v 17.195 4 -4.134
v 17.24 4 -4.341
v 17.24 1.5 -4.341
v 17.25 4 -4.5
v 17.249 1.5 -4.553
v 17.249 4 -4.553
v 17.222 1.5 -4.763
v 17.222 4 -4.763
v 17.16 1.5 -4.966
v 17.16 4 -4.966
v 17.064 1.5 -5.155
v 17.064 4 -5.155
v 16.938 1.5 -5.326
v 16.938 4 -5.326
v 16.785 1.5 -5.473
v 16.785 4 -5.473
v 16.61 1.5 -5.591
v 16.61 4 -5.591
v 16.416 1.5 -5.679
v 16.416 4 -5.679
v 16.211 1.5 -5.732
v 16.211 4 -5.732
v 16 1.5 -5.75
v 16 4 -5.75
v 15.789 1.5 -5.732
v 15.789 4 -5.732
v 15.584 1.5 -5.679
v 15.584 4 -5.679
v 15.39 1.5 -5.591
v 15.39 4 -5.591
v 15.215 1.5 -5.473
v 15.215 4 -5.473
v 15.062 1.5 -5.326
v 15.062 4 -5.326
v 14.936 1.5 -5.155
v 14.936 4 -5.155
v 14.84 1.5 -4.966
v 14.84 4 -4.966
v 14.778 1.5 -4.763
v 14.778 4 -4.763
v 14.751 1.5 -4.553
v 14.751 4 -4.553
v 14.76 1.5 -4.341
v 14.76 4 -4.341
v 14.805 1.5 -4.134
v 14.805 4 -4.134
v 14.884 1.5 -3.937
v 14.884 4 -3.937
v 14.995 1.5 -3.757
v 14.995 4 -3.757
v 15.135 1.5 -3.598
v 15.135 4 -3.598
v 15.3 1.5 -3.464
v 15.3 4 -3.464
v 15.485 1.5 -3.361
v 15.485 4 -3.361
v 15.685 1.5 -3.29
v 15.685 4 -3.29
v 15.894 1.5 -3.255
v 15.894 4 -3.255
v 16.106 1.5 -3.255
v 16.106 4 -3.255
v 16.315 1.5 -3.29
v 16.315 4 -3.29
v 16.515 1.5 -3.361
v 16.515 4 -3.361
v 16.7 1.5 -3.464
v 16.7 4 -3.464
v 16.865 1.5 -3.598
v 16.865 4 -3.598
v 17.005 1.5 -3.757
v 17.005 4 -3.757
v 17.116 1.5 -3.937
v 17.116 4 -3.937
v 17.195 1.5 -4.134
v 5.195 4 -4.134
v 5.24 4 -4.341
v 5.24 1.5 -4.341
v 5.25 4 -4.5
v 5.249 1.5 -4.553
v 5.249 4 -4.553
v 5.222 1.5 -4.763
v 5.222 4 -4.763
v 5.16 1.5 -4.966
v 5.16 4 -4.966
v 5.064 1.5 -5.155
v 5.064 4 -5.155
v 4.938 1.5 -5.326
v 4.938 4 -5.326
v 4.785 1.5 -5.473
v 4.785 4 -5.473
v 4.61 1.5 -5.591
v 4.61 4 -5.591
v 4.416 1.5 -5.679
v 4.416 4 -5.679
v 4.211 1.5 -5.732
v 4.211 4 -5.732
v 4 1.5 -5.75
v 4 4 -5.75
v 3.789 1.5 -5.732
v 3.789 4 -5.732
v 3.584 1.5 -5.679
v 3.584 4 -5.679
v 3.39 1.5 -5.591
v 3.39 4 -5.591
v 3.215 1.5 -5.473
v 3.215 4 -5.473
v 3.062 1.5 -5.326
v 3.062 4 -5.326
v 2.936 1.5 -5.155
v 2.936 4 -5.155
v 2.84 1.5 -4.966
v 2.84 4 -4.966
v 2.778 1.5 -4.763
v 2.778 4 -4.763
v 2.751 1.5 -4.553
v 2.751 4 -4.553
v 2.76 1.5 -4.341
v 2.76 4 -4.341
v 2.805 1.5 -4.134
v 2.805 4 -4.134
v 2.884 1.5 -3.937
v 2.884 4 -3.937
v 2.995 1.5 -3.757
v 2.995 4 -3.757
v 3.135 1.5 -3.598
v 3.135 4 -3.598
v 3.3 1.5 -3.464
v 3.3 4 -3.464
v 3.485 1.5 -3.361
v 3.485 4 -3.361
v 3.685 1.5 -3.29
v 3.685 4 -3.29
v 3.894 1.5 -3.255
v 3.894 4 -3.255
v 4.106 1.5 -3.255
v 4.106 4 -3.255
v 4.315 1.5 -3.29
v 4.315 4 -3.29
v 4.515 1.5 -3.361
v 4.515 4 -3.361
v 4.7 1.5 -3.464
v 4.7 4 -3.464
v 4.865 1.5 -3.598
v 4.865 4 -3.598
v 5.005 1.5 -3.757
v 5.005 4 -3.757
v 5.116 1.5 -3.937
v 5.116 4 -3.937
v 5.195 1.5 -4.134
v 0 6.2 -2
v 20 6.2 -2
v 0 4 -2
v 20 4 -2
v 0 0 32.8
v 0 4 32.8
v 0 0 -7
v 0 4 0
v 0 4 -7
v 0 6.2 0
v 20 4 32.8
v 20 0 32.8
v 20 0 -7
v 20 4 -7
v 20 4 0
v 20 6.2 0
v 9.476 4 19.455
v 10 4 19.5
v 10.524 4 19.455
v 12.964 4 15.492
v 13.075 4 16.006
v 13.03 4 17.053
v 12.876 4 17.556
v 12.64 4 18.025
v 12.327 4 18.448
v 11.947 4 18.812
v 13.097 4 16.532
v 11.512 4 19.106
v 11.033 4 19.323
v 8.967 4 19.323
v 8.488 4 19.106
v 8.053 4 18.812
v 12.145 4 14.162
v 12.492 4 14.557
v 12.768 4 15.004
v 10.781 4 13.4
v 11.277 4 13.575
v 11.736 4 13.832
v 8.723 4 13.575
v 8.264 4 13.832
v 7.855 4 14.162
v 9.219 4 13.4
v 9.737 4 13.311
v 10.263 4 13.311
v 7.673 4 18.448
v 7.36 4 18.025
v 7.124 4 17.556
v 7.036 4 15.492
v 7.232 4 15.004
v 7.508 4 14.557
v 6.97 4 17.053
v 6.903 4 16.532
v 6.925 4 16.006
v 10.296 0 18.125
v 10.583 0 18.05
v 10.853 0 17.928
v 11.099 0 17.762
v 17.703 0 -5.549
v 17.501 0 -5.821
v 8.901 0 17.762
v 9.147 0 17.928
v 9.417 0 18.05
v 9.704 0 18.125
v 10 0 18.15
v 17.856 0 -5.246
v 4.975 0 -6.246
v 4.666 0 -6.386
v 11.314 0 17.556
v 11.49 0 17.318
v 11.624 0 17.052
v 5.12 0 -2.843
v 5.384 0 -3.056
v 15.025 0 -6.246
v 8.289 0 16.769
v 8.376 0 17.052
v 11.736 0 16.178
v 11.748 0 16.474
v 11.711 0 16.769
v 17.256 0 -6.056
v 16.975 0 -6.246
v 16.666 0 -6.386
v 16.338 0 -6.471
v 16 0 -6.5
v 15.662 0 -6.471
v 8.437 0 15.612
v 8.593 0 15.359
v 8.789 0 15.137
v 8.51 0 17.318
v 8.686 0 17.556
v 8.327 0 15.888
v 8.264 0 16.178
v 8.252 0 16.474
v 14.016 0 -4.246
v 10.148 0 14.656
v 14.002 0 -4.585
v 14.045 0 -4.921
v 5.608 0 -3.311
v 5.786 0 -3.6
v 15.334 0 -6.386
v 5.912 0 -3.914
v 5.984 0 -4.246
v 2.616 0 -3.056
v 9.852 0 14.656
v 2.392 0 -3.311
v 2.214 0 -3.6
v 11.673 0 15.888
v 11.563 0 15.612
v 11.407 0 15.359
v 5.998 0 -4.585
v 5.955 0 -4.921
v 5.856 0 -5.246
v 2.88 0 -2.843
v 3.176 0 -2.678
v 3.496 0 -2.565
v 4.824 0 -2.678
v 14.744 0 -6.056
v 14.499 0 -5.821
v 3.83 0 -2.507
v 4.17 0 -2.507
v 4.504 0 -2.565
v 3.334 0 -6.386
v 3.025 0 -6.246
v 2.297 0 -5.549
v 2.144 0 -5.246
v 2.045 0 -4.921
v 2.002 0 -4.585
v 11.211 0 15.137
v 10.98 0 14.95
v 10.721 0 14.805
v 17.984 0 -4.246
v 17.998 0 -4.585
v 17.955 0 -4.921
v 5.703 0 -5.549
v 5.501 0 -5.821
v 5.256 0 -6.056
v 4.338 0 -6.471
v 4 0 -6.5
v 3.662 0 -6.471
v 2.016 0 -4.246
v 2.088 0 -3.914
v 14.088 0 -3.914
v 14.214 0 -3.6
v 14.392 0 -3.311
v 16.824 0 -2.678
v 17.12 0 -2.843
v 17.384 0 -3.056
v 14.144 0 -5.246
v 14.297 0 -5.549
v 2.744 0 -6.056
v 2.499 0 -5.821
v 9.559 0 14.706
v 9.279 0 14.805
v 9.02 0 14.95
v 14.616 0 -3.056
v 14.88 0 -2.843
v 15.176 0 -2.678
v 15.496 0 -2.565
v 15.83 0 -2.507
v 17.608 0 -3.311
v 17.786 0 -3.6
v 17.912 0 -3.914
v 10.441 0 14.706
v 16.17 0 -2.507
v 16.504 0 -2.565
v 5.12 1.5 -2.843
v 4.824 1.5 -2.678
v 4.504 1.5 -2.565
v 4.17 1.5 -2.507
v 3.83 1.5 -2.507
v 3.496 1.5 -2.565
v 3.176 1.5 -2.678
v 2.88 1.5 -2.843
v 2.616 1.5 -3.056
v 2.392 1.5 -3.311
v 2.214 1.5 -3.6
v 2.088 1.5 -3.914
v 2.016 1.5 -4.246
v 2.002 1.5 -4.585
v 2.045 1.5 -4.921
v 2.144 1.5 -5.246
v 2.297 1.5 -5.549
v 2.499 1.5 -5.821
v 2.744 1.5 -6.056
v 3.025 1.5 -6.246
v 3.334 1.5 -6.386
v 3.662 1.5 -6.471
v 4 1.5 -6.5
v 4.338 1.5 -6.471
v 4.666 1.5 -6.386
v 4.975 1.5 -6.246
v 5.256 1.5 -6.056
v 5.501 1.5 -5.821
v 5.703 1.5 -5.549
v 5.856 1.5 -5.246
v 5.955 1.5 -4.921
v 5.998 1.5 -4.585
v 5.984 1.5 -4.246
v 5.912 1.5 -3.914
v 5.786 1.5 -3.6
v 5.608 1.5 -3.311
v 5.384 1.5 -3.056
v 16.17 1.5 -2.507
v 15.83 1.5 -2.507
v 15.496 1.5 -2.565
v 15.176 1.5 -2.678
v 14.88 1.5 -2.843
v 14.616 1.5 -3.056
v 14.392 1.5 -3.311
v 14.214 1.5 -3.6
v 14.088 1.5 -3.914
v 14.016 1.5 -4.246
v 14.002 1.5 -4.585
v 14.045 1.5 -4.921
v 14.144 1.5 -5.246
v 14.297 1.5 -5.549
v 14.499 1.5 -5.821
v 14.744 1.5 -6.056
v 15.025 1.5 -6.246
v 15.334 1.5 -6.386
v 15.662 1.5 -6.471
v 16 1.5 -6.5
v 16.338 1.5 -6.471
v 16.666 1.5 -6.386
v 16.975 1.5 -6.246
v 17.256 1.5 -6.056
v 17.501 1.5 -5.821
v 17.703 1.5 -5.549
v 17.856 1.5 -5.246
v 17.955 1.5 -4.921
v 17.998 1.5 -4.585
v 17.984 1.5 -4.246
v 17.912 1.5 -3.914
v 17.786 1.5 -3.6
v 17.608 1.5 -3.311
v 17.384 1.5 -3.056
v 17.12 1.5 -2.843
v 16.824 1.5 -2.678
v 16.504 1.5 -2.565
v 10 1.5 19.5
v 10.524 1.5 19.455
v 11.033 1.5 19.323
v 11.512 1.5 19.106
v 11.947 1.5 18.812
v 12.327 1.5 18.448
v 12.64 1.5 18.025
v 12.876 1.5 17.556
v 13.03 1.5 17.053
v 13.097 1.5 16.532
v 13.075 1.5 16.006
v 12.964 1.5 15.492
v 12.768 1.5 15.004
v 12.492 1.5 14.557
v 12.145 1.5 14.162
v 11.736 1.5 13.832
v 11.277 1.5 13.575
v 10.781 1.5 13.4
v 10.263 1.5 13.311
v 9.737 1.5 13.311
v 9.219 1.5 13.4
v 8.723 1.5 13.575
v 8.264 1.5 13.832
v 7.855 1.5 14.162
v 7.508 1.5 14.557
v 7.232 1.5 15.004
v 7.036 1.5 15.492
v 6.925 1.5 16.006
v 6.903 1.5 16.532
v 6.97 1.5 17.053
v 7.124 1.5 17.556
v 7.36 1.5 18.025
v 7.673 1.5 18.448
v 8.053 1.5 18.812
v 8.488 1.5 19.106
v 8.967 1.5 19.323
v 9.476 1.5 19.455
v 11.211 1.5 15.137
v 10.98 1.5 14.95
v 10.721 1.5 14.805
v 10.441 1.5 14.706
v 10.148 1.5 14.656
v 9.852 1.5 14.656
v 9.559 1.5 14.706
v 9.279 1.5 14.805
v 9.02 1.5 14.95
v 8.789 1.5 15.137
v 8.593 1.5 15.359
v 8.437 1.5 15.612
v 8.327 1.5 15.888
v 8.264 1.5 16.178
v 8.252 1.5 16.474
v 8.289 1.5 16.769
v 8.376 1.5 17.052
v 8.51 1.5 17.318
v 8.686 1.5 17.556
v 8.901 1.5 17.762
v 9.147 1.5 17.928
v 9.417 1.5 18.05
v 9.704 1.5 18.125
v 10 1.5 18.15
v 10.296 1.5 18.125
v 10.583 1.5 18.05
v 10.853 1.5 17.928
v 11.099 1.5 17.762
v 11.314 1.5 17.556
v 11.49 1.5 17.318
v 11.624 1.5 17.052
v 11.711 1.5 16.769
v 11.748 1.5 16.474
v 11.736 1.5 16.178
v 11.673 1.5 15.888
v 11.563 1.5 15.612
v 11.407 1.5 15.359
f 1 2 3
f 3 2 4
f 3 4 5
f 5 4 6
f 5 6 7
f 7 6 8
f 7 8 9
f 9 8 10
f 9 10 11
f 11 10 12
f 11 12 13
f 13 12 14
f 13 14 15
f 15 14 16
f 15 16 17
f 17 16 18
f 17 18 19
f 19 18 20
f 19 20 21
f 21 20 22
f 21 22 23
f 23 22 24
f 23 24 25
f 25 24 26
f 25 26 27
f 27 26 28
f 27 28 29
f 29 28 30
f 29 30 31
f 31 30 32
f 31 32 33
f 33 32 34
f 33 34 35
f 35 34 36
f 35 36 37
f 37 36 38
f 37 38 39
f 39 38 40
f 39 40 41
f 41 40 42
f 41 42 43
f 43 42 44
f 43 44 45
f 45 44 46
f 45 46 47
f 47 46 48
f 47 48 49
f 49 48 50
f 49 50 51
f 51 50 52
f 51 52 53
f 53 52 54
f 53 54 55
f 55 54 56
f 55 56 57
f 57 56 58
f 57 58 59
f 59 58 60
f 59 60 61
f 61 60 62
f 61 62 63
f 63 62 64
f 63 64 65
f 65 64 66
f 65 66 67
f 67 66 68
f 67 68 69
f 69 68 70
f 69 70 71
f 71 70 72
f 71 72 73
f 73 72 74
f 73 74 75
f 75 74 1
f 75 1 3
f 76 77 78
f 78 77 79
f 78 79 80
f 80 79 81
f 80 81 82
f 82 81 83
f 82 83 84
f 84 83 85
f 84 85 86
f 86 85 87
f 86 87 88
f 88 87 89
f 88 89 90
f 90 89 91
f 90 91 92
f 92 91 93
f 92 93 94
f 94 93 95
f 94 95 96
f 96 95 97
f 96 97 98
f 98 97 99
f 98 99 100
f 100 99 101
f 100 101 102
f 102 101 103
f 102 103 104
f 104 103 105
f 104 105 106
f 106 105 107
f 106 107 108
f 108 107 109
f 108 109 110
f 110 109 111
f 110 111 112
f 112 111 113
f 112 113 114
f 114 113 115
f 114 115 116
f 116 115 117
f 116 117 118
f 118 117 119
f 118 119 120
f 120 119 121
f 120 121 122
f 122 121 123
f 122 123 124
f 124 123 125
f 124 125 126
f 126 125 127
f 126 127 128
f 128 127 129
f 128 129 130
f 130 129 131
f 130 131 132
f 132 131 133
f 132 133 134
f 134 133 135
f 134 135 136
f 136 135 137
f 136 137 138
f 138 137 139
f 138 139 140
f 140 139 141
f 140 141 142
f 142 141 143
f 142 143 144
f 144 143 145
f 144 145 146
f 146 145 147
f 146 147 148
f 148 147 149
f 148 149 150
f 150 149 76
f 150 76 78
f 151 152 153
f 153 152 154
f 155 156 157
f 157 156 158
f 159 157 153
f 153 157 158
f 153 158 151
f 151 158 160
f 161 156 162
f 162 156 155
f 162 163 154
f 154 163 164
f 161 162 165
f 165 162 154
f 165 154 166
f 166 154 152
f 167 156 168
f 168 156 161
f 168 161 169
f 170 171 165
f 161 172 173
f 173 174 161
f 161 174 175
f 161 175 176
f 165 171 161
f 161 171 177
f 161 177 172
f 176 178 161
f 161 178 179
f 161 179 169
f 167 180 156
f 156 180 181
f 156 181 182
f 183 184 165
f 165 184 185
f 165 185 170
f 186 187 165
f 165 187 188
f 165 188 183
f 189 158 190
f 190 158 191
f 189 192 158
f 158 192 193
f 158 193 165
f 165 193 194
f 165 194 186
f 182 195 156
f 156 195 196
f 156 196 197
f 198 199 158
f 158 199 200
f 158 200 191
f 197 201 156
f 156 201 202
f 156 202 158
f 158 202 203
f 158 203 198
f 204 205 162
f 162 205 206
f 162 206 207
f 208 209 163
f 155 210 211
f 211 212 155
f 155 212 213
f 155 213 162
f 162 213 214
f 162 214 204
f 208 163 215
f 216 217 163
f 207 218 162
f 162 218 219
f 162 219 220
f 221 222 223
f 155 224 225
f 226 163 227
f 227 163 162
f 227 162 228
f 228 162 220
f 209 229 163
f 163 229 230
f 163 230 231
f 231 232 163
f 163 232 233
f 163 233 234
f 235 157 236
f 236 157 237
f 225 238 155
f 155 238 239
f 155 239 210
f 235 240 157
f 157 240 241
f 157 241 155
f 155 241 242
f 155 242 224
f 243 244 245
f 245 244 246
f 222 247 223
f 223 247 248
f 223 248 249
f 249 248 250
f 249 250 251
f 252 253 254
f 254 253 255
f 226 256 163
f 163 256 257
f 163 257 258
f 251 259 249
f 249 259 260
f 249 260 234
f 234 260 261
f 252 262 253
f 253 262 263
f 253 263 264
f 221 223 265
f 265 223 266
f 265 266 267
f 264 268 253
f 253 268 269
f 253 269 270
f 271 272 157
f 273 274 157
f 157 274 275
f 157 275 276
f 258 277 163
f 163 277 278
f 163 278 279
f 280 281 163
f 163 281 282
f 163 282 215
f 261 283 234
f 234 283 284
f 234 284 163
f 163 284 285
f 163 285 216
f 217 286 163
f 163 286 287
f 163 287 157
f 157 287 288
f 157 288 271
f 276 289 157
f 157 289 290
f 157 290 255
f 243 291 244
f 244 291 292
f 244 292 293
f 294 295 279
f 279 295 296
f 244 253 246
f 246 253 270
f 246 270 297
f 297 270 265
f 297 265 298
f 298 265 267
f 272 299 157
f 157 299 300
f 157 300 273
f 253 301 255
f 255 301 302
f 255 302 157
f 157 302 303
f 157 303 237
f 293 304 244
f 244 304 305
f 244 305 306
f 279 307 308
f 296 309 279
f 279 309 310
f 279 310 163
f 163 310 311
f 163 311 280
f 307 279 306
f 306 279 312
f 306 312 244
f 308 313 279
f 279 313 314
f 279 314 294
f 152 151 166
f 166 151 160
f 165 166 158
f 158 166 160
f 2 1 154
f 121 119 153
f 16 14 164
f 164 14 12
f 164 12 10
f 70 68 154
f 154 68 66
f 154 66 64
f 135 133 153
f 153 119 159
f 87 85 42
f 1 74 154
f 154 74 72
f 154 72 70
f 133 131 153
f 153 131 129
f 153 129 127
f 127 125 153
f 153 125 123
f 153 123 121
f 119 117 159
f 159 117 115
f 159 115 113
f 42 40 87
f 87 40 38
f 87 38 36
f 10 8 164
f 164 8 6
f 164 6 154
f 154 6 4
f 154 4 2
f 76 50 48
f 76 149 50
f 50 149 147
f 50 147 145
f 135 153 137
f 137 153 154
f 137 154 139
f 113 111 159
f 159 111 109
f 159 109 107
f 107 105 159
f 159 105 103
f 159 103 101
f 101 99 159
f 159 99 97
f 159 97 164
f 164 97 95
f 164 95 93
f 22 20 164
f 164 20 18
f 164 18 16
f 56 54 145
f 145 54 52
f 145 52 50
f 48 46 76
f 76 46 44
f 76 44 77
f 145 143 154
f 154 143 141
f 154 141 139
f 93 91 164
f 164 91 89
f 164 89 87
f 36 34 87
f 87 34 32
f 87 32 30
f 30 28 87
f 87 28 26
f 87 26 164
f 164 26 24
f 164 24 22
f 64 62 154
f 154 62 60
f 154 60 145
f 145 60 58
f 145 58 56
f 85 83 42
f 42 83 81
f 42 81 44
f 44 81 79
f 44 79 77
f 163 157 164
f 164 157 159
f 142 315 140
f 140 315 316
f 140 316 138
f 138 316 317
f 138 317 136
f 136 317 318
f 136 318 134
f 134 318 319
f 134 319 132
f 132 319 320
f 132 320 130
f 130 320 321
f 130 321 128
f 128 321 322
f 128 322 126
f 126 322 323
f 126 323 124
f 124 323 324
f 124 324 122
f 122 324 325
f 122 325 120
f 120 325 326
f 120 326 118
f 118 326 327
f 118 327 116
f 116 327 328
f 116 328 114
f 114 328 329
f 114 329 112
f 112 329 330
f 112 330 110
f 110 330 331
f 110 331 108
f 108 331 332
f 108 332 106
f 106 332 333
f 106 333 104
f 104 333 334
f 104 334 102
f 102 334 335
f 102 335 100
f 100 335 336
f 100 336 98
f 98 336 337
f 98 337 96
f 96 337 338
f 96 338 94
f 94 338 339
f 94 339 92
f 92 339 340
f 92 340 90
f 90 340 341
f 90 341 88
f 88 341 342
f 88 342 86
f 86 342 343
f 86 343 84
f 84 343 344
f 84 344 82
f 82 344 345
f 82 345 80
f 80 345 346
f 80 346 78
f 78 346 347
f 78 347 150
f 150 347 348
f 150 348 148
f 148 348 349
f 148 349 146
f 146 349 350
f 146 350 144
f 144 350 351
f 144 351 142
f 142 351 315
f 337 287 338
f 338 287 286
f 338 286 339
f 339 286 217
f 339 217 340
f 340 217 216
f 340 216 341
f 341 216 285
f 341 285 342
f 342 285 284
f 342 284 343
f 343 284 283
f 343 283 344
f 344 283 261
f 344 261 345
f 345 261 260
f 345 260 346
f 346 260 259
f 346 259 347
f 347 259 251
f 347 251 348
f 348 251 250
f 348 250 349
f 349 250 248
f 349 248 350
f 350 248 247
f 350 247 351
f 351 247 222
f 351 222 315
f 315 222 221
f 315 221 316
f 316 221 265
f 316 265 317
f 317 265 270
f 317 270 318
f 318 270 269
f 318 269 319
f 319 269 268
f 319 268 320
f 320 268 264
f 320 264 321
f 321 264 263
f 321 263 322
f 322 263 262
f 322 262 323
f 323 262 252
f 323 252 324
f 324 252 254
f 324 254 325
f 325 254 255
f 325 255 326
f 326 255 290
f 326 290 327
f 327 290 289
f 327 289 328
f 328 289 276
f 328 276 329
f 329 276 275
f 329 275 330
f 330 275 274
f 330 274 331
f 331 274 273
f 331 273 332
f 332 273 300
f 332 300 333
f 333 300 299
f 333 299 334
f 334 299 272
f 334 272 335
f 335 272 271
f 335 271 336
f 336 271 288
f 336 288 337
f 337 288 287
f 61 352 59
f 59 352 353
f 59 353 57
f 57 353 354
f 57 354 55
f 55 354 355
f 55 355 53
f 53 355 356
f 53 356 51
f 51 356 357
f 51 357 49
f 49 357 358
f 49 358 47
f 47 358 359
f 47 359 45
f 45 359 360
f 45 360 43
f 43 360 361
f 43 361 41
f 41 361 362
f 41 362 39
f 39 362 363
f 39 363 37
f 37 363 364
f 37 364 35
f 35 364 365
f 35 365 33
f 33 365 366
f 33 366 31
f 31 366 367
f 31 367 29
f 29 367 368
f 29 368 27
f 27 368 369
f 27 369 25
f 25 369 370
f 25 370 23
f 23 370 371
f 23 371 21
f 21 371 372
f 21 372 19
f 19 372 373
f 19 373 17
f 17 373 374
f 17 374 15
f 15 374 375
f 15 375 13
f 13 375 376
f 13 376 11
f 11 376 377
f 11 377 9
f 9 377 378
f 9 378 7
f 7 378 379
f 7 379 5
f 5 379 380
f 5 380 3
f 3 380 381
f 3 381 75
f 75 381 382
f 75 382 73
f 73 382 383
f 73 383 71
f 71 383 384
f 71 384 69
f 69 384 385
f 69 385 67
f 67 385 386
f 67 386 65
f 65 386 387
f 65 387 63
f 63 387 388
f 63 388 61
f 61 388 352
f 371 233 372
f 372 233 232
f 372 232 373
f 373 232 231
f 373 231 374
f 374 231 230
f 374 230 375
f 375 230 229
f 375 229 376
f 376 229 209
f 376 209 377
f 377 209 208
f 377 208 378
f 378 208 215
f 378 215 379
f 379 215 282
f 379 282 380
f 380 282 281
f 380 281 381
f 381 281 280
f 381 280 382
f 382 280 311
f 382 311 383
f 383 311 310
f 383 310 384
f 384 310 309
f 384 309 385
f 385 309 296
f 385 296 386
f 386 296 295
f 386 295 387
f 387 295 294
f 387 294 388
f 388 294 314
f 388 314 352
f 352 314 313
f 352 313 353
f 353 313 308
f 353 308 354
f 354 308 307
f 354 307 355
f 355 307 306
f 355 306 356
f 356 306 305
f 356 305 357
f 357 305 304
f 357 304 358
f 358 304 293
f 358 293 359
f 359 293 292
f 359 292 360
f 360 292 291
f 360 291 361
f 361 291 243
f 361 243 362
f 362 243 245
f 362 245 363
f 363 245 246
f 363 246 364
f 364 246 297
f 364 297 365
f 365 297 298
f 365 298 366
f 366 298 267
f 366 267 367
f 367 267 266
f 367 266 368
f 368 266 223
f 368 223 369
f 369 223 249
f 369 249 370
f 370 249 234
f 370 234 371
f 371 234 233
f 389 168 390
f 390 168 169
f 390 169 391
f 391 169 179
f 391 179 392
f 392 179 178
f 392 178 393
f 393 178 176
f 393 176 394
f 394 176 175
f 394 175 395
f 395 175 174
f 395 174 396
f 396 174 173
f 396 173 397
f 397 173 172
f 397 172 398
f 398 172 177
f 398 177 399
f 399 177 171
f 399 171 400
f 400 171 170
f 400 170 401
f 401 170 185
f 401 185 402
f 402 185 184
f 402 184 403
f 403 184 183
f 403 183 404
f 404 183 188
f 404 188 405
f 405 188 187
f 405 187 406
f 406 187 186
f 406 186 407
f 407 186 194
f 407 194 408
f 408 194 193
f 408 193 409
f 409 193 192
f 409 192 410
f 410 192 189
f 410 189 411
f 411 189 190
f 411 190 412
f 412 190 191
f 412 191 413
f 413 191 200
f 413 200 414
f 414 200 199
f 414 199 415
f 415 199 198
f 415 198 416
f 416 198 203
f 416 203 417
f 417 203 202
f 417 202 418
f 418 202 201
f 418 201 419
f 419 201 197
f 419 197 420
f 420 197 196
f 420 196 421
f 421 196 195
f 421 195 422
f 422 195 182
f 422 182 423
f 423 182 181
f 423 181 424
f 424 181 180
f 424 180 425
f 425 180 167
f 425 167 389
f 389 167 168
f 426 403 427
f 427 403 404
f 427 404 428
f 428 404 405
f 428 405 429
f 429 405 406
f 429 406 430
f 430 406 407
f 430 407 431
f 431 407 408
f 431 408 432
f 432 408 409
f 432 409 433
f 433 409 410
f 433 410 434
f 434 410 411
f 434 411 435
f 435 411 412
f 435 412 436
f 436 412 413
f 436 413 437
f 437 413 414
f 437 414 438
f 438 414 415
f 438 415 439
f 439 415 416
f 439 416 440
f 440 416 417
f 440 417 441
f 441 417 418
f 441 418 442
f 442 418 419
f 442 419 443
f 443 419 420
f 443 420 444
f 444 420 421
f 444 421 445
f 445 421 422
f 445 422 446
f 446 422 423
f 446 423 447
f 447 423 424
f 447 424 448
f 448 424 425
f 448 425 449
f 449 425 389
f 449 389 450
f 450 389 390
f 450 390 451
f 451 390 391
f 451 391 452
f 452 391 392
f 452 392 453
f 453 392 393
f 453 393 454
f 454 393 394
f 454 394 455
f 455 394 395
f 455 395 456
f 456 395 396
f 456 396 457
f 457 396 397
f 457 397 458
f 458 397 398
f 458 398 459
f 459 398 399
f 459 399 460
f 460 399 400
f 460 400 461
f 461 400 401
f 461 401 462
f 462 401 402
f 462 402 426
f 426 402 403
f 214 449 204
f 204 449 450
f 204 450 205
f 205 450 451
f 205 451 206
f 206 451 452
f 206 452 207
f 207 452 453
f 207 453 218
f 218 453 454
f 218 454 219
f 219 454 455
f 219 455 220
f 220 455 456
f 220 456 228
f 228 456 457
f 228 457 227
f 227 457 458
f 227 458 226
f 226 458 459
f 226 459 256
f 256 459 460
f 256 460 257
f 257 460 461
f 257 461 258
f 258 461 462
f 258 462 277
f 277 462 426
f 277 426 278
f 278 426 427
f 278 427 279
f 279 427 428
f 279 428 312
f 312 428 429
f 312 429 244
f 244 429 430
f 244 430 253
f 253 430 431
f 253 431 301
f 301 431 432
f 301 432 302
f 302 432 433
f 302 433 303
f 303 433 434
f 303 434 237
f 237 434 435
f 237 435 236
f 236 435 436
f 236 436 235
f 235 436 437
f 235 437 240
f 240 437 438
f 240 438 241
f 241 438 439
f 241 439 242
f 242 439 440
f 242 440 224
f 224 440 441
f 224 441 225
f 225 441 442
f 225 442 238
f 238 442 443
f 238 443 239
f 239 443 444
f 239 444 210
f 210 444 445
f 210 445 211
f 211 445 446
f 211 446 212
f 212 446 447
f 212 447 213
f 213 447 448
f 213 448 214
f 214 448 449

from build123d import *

# Parameters (mm, degrees)
SKETCH_1_W          = 20
SKETCH_1_H          = 32.8
EXTRUDE_1_DEPTH     = 4
CUT_EXTRUDE_1_DEPTH = 1.6
SKETCH_4_R          = 2
CUT_EXTRUDE_2_DEPTH = 1.5
SKETCH_4_3_R        = 1.25
CUT_EXTRUDE_3_DEPTH = 39.624344655
SKETCH_5_W          = 20
SKETCH_5_H          = 6.2
EXTRUDE_4_DEPTH     = 2
EXTRUDE_START       = 2
SKETCH_5_6_W        = 20
SKETCH_5_6_H        = 4
EXTRUDE_5_DEPTH     = 5
SKETCH_6_R          = 1.25
CUT_EXTRUDE_4_DEPTH = 39.913750783
SKETCH_6_3_R        = 2
CUT_EXTRUDE_5_DEPTH = 1.5
SKETCH_1_3_W        = 20
SKETCH_1_3_H        = 32.8
EXTRUDE_6_DEPTH     = 4
SKETCH_7_R          = 3.1
CUT_EXTRUDE_7_DEPTH = 2.5
SKETCH_7_4_R        = 1.75
CUT_EXTRUDE_8_DEPTH = 39.624344655


with BuildPart() as part:
    # 草图1 → 凸台-拉伸1 (new body)
    with BuildSketch(Plane(origin=(0, 0, 0), x_dir=(1, 0, 0), z_dir=(0, 1, 0))):
        with Locations((10, -16.4)):
            Rectangle(SKETCH_1_W, SKETCH_1_H)
    extrude(amount=EXTRUDE_1_DEPTH)

    # 草图3 → 切除-拉伸1 (cut)
    with BuildSketch(Plane(origin=(0, 4, 0), x_dir=(-1, 0, 0), z_dir=(0, 1, 0))):
        with BuildLine():
            Line((-12.8, 13.543428629), (-12.095952788, 2.219685343))
            ThreePointArc((-12.095952788, 2.219685343), (-10, 0.25), (-7.904047212, 2.219685343))
            Line((-7.904047212, 2.219685343), (-7.2, 13.543428629))
            ThreePointArc((-7.2, 13.543428629), (-6, 16.4), (-7.2, 19.256571371))
            Line((-7.2, 19.256571371), (-7.904047212, 30.580314657))
            ThreePointArc((-7.904047212, 30.580314657), (-10, 32.55), (-12.095952788, 30.580314657))
            Line((-12.095952788, 30.580314657), (-12.8, 19.256571371))
            ThreePointArc((-12.8, 19.256571371), (-14, 16.4), (-12.8, 13.543428629))
        make_face()
    extrude(amount=-CUT_EXTRUDE_1_DEPTH, mode=Mode.SUBTRACT)

    # 草图4 → 切除-拉伸2 (cut)
    with BuildSketch(Plane.XZ):
        with Locations(Location((4, 4, 0), (0, 0, 270))):
            Circle(SKETCH_4_R)
        with Locations(Location((4, 28.8, 0), (0, 0, 270))):
            Circle(SKETCH_4_R)
        with Locations(Location((16, 28.8, 0), (0, 0, 270))):
            Circle(SKETCH_4_R)
        with Locations(Location((16, 4, 0), (0, 0, 270))):
            Circle(SKETCH_4_R)
    extrude(amount=-CUT_EXTRUDE_2_DEPTH, mode=Mode.SUBTRACT)

    # 草图4<3> → 切除-拉伸3 (cut, through all)
    with BuildSketch(Plane.XZ):
        with Locations(Location((4, 4, 0), (0, 0, 270))):
            Circle(SKETCH_4_3_R)
        with Locations(Location((4, 28.8, 0), (0, 0, 270))):
            Circle(SKETCH_4_3_R)
        with Locations(Location((16, 4, 0), (0, 0, 270))):
            Circle(SKETCH_4_3_R)
        with Locations(Location((16, 28.8, 0), (0, 0, 270))):
            Circle(SKETCH_4_3_R)
    extrude(amount=-CUT_EXTRUDE_3_DEPTH, mode=Mode.SUBTRACT)

    # 草图5 → 凸台-拉伸4 (add)
    with BuildSketch(Plane(origin=(0, 0, 0), x_dir=(-1, 0, 0), z_dir=(0, 0, -1))):
        with Locations((-10, 3.1)):
            Rectangle(SKETCH_5_W, SKETCH_5_H)
    extrude(amount=EXTRUDE_4_DEPTH)

    # 草图5<6> → 凸台-拉伸5 (add)
    with BuildSketch(Plane(origin=(0, 0, 0), x_dir=(-1, 0, 0), z_dir=(0, 0, -1)).offset(EXTRUDE_START)):
        with Locations((-10, 2)):
            Rectangle(SKETCH_5_6_W, SKETCH_5_6_H)
    extrude(amount=EXTRUDE_5_DEPTH)

    # 草图6 → 切除-拉伸4 (cut, through all)
    with BuildSketch(Plane.XZ):
        with Locations(Location((4, -4.5, 0), (0, 0, 270))):
            Circle(SKETCH_6_R)
        with Locations(Location((16, -4.5, 0), (0, 0, 270))):
            Circle(SKETCH_6_R)
    extrude(amount=-CUT_EXTRUDE_4_DEPTH, mode=Mode.SUBTRACT)

    # 草图6<3> → 切除-拉伸5 (cut)
    with BuildSketch(Plane.XZ):
        with Locations(Location((4, -4.5, 0), (0, 0, 270))):
            Circle(SKETCH_6_3_R)
        with Locations(Location((16, -4.5, 0), (0, 0, 270))):
            Circle(SKETCH_6_3_R)
    extrude(amount=-CUT_EXTRUDE_5_DEPTH, mode=Mode.SUBTRACT)

    # 草图1<3> → 凸台-拉伸6 (add)
    with BuildSketch(Plane(origin=(0, 0, 0), x_dir=(1, 0, 0), z_dir=(0, 1, 0))):
        with Locations((10, -16.4)):
            Rectangle(SKETCH_1_3_W, SKETCH_1_3_H)
    extrude(amount=EXTRUDE_6_DEPTH)

    # 草图7 → 切除-拉伸7 (cut)
    with BuildSketch(Plane(origin=(0, 4, 0), x_dir=(1, 0, 0), z_dir=(0, 1, 0))):
        with Locations(Location((10, -16.4, 0), (0, 0, 270))):
            Circle(SKETCH_7_R)
    extrude(amount=-CUT_EXTRUDE_7_DEPTH, mode=Mode.SUBTRACT)

    # 草图7<4> → 切除-拉伸8 (cut, through all)
    with BuildSketch(Plane(origin=(0, 4, 0), x_dir=(1, 0, 0), z_dir=(0, 1, 0))):
        with Locations(Location((10, -16.4, 0), (0, 0, 270))):
            Circle(SKETCH_7_4_R)
    extrude(amount=-CUT_EXTRUDE_8_DEPTH, mode=Mode.SUBTRACT)


solid = part.part
